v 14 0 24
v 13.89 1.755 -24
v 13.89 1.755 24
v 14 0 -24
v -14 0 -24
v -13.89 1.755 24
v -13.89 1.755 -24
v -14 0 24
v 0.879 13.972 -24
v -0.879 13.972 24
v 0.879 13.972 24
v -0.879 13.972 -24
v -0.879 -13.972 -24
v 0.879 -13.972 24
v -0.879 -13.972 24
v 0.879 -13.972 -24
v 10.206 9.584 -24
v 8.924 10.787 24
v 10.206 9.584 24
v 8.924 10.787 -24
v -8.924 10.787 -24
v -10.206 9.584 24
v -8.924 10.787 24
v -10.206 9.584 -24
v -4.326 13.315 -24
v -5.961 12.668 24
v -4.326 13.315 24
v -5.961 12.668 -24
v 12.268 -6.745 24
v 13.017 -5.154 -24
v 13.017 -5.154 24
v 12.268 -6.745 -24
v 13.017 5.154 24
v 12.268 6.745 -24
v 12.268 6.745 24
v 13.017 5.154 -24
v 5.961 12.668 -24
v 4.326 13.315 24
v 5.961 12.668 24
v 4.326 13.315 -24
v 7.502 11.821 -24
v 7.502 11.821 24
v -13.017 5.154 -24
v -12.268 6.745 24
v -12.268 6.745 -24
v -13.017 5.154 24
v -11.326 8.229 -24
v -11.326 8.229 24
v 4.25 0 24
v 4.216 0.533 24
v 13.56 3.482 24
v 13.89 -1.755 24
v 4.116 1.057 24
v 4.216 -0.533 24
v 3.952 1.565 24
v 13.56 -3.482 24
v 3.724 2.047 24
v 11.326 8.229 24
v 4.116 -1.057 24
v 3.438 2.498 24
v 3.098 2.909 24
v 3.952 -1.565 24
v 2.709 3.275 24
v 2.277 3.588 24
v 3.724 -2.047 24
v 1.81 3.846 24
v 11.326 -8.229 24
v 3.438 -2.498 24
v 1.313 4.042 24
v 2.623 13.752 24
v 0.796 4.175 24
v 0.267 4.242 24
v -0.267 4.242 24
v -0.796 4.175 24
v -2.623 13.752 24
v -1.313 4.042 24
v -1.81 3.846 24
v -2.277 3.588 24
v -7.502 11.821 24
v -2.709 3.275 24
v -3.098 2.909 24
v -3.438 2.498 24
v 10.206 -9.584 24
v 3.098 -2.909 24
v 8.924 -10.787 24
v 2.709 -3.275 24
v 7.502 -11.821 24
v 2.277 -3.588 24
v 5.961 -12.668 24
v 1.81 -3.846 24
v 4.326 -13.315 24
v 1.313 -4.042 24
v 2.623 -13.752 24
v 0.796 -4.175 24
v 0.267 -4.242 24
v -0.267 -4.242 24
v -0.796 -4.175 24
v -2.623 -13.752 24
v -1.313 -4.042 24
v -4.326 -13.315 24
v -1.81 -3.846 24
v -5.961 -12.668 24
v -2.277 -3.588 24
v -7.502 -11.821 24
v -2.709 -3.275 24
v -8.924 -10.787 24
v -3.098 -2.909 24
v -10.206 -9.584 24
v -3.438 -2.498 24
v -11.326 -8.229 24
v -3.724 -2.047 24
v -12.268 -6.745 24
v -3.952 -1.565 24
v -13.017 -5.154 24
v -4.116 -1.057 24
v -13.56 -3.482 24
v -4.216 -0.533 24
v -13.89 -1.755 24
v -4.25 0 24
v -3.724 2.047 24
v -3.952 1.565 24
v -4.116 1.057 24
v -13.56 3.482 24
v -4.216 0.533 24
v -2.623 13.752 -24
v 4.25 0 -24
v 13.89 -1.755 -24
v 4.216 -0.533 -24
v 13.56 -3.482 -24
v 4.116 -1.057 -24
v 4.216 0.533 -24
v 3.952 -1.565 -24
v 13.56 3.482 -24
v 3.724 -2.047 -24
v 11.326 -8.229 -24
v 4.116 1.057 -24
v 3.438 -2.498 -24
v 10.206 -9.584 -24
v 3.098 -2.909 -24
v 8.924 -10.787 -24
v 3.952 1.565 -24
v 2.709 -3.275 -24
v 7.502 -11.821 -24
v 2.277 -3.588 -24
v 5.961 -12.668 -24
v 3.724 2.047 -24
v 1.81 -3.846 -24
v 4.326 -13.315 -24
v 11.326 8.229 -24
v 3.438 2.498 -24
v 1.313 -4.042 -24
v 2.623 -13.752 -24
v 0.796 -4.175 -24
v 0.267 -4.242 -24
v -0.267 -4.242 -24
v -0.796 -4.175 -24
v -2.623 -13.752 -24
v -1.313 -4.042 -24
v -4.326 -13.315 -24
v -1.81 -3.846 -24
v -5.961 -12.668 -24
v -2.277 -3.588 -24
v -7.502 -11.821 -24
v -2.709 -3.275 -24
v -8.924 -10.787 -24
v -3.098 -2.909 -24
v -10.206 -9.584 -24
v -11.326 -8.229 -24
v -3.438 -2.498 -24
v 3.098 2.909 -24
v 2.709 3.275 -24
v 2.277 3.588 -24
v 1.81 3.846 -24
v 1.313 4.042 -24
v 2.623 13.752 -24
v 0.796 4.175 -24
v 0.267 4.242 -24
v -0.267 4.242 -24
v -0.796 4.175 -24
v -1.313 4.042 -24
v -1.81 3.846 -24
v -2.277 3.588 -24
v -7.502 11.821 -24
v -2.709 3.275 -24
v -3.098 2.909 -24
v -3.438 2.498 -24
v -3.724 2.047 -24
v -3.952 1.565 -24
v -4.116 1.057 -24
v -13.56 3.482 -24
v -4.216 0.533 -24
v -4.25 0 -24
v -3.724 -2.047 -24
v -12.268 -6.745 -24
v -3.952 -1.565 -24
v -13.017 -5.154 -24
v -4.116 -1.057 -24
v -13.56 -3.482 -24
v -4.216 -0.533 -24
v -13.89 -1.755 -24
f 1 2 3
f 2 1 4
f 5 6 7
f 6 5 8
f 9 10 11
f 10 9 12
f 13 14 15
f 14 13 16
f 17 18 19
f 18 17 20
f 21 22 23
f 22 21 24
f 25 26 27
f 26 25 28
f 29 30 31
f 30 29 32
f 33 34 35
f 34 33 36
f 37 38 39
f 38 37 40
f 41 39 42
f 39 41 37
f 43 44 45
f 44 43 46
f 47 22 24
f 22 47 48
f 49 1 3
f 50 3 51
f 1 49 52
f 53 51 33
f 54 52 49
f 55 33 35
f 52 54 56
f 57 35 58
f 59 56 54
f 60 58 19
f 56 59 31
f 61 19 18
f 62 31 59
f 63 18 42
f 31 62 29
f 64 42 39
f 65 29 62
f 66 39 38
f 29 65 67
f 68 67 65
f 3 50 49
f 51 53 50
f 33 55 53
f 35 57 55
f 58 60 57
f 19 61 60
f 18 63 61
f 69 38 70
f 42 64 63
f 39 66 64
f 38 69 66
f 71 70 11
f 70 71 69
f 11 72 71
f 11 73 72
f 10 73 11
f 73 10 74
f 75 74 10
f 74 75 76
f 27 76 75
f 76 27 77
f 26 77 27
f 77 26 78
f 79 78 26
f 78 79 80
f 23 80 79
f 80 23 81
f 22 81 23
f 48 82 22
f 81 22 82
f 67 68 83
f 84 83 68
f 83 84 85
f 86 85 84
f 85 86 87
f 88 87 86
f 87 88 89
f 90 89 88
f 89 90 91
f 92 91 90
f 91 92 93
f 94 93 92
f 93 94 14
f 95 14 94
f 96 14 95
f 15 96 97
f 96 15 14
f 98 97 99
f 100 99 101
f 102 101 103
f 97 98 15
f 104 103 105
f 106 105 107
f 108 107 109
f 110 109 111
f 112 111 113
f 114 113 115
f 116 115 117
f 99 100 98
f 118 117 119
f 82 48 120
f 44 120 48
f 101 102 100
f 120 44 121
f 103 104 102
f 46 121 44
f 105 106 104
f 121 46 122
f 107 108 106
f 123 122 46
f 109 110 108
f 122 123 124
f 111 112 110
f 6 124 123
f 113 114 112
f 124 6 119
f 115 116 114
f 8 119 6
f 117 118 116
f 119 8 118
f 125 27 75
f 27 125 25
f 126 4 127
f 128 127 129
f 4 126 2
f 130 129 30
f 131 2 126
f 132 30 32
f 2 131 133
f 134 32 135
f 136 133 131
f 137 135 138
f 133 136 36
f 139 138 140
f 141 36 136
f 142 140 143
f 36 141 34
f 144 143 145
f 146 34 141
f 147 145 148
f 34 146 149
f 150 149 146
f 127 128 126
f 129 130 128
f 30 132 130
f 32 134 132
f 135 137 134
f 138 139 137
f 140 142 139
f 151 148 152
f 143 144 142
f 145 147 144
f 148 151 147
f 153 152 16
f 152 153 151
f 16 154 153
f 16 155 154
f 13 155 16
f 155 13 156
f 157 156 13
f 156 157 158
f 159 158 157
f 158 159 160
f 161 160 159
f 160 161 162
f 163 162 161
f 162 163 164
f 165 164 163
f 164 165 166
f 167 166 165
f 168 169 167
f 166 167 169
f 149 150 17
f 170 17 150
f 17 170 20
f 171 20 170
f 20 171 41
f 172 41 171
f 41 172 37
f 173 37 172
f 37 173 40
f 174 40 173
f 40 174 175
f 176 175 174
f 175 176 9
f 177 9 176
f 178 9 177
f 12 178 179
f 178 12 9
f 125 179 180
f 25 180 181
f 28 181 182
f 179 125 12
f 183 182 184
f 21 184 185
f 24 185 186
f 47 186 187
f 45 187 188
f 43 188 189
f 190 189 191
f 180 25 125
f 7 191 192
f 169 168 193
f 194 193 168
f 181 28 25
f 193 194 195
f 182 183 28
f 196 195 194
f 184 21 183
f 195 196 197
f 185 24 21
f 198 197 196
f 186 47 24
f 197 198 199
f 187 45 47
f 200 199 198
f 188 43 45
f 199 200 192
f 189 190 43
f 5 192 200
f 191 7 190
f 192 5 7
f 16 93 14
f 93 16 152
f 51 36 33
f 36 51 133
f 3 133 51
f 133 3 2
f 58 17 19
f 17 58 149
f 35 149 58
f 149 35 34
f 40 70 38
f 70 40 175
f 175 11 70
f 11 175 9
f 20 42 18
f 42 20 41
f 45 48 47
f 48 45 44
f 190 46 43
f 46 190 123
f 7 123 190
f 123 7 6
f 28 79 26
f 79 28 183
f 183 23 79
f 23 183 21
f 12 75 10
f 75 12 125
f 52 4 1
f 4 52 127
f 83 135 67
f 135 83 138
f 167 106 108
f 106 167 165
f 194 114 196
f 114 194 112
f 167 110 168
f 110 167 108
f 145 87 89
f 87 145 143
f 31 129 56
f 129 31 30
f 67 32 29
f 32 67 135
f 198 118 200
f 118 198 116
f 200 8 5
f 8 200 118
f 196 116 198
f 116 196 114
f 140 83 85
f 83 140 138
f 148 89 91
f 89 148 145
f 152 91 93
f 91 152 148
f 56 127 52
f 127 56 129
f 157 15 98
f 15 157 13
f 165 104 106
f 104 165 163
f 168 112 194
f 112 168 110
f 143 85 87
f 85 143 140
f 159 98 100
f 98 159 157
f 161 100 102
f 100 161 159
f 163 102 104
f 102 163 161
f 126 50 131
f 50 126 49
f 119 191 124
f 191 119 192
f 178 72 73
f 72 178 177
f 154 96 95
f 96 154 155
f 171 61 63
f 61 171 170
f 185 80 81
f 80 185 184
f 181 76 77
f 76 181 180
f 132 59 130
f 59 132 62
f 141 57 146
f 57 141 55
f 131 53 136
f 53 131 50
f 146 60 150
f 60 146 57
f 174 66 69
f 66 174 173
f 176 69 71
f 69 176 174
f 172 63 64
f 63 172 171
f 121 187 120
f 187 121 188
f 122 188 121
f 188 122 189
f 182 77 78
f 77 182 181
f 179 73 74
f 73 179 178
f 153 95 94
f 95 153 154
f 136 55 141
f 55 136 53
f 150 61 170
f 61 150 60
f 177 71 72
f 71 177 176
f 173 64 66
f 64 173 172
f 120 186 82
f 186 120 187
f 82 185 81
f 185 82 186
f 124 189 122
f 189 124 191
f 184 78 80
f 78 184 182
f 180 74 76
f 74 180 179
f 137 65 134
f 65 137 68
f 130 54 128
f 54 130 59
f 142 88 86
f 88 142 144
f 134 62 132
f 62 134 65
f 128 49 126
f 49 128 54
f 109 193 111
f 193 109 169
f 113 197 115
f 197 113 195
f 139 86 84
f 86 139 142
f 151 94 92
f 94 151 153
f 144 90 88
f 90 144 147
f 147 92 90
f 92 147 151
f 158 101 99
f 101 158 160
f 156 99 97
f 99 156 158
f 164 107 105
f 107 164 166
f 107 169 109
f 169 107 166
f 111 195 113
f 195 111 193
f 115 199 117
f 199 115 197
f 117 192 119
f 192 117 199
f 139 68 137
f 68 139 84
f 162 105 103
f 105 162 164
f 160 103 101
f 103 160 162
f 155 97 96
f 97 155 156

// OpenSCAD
$fn = 50;


difference() {
	union() {
		translate(v = [0, 0, -24.0000000000]) {
			cylinder(h = 48, r = 14.0000000000);
		}
	}
	union() {
		translate(v = [0, 0, -100.0000000000]) {
			cylinder(h = 200, r = 4.2500000000);
		}
	}
}
